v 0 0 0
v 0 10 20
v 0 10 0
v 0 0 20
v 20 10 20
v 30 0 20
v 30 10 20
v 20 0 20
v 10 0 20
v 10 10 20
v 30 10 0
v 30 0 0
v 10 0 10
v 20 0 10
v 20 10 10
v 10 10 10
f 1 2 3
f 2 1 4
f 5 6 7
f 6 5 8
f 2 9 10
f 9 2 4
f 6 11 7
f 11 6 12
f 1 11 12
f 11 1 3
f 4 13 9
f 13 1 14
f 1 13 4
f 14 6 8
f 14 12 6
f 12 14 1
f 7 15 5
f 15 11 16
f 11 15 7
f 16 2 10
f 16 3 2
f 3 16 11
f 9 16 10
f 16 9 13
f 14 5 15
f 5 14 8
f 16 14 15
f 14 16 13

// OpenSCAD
difference() {
	cube([30, 10, 20]);
	translate([10, 0, 10])
		cube([10, 10, 10]);
}
